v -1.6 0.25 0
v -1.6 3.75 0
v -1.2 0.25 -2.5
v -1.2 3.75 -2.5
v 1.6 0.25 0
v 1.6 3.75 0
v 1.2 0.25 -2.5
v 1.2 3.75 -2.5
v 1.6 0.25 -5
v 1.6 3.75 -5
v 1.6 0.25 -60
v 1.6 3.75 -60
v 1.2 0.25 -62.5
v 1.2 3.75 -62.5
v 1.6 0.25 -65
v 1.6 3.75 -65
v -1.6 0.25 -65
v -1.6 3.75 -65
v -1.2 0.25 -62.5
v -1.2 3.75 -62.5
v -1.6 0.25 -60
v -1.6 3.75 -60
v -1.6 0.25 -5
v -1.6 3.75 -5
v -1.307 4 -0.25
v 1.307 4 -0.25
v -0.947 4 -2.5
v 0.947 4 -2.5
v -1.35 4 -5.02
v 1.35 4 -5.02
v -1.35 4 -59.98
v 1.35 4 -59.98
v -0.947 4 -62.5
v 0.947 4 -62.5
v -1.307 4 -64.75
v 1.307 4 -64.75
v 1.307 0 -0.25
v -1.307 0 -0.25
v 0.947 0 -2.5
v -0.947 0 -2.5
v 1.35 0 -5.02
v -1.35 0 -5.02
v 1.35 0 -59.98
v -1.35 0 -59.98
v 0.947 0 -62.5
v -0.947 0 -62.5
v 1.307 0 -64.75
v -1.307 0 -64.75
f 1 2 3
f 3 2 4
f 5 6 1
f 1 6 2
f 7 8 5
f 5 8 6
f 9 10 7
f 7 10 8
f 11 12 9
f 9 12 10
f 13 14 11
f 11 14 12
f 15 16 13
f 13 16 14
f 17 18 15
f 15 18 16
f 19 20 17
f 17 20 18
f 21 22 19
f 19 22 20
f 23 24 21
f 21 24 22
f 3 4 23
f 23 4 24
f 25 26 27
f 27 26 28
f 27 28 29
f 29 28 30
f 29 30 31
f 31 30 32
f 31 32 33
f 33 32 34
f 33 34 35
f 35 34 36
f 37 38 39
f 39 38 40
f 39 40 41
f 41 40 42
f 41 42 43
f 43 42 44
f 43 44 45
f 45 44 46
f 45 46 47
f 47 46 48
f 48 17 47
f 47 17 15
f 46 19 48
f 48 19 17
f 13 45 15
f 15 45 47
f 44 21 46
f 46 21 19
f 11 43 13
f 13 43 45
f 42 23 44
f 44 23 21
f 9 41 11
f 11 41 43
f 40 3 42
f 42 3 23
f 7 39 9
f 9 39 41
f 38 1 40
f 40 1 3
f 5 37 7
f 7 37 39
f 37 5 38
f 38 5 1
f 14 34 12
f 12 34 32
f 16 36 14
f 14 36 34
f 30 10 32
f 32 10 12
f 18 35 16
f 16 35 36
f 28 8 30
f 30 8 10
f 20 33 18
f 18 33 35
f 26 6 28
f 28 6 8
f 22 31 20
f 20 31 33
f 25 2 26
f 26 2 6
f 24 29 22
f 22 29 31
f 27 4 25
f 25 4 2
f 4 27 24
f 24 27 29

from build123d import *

# Parameters (mm, degrees)
BOSS_EXTRUDE1_DEPTH = 4
CHAMFER1_SIZE       = 0.25


with BuildPart() as part:
    # Sketch1 → Boss-Extrude1 (new body)
    with BuildSketch(Plane(origin=(0, 0, 0), x_dir=(1, 0, 0), z_dir=(0, 1, 0))):
        Polygon((-1.6, 0), (1.6, 0), (1.2, 2.5), (1.6, 5), (1.6, 60), (1.2, 62.5), (1.6, 65), (-1.6, 65), (-1.2, 62.5), (-1.6, 60), (-1.6, 5), (-1.2, 2.5), align=None)
    extrude(amount=BOSS_EXTRUDE1_DEPTH)

    # Chamfer1
    chamfer1_edges = [part.edges().sort_by_distance(p)[0] for p in [
        (-1.4, 0, -3.75),
        (-1.6, 0, -32.5),
        (1.4, 4, -1.25),
        (-1.4, 0, -61.25),
        (-1.4, 0, -63.75),
        (0, 0, -65),
        (1.4, 0, -63.75),
        (1.4, 0, -61.25),
        (1.6, 0, -32.5),
        (1.4, 0, -3.75),
        (1.4, 0, -1.25),
        (0, 0, 0),
        (-1.4, 0, -1.25),
        (1.4, 4, -3.75),
        (1.6, 4, -32.5),
        (1.4, 4, -61.25),
        (1.4, 4, -63.75),
        (0, 4, -65),
        (-1.4, 4, -63.75),
        (-1.4, 4, -61.25),
        (-1.6, 4, -32.5),
        (-1.4, 4, -3.75),
        (-1.4, 4, -1.25),
        (0, 4, 0),
    ]]
    chamfer(chamfer1_edges, length=CHAMFER1_SIZE)


solid = part.part
